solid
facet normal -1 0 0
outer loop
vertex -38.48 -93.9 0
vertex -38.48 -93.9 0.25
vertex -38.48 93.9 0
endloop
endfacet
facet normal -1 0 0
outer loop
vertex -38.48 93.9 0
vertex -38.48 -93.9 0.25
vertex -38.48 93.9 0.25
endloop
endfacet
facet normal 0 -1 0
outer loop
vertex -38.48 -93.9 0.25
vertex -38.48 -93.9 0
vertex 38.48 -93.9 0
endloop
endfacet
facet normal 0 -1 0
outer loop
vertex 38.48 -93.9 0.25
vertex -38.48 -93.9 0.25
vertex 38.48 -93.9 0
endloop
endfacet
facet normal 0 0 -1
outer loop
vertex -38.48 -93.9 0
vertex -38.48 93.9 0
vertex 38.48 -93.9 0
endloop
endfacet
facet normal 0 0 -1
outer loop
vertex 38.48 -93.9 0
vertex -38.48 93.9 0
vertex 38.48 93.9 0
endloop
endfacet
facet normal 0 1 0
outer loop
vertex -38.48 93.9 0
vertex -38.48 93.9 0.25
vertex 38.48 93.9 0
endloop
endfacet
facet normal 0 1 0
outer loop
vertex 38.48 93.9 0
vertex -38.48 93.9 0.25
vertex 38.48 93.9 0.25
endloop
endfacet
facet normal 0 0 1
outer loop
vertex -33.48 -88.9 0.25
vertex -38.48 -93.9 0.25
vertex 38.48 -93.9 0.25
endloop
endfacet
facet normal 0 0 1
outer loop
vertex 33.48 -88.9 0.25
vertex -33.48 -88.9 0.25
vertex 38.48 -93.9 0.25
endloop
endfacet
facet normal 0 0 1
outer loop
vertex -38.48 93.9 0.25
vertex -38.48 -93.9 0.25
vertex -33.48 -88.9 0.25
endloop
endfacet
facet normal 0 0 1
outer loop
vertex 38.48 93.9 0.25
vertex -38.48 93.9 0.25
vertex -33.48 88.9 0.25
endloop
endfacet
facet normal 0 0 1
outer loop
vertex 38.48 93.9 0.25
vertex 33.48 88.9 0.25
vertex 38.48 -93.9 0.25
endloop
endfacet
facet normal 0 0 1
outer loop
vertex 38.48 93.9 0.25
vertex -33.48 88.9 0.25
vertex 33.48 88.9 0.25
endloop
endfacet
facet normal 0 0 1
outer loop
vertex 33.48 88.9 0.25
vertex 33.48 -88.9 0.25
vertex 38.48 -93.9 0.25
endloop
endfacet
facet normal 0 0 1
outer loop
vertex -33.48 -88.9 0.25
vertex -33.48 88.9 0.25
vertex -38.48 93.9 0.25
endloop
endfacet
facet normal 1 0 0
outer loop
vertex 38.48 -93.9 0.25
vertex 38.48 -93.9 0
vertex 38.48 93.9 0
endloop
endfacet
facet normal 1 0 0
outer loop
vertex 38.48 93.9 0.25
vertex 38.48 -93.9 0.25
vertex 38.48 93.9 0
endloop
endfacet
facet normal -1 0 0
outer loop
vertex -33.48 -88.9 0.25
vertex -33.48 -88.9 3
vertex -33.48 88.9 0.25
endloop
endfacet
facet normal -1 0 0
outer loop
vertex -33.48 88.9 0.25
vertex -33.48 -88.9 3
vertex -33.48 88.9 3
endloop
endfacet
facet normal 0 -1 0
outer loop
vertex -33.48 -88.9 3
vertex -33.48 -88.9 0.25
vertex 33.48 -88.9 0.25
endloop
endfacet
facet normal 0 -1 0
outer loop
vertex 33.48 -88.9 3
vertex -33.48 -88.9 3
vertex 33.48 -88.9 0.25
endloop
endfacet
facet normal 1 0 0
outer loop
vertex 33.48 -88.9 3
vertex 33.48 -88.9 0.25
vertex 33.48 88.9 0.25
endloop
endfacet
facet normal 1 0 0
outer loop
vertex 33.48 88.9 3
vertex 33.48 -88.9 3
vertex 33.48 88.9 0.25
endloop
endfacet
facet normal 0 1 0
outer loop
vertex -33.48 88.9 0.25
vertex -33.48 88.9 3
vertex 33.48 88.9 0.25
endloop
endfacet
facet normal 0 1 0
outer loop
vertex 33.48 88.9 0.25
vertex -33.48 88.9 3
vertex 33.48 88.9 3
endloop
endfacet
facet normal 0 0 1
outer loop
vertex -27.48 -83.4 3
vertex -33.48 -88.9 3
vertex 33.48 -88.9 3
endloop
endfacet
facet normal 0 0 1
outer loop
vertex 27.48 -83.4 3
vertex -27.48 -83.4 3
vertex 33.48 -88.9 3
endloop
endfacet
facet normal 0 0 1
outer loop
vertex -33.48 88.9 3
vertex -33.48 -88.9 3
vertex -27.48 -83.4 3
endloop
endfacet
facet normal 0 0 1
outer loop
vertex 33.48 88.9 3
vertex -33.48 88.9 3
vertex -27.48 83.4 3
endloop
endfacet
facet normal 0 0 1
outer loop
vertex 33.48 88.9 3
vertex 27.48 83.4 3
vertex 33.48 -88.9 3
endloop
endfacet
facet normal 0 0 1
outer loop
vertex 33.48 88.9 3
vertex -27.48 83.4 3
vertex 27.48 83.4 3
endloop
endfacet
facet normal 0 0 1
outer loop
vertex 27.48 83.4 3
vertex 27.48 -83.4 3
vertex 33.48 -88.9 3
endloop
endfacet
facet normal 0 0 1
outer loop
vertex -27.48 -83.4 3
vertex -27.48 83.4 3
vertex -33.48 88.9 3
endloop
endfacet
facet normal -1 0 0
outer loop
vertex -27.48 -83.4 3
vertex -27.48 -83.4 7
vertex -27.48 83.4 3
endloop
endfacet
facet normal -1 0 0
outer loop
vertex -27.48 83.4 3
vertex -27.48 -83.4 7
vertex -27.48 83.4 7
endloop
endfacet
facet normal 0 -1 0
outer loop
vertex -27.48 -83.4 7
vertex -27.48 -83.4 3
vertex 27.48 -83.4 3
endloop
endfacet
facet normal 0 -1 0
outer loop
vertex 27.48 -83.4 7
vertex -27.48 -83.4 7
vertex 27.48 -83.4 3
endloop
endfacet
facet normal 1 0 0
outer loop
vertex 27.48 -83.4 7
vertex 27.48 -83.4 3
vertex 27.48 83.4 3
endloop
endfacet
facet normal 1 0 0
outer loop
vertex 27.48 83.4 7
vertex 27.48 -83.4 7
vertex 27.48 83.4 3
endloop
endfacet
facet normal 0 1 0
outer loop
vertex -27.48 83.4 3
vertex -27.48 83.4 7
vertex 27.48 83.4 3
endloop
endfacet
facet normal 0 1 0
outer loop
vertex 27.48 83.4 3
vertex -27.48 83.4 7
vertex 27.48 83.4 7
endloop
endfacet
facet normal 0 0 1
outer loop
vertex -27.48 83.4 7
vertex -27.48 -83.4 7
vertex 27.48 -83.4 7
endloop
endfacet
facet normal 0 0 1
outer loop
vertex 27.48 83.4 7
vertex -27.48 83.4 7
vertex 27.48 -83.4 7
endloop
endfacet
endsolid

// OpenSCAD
// file: constants.scad
hp = 6;
h_floor = 5;

// back wall
r_usb = 2.64;
r_antenna = 3.43;
t_antenna_hex = 5;
t_antenna_washer = 1.75;
t_back = t_antenna_hex + t_antenna_washer;
hex_diam_max = 12;
hex_diam_min = 8.25;

// breadboard
bb_w = 54.96;
bb_d = 83.14;
bb_h = 9.5;
bb_foot_w = 4.64;
bb_foot_d = 2.2;
bb_left_foot_offset = 14.556;
bb_bottom_foot_offset = 22.586;

bb_to_back = 83.66;
bb_bottom_to_wires_top = 32.7;

d_bb_bottom_support = hp;
lid_inset = 4;

h_lid_edge = 3;

back_inset = 5;
h_back_edge = t_back - back_inset;
dz_back_antenna = 12;
dy_back_antenna = 20;

w_base = bb_w + 2*hp;
d_base = hp + bb_d + bb_to_back + back_inset;
h_base = h_floor + bb_bottom_to_wires_top + lid_inset;

h_outer = h_base + h_lid_edge;
w_outer = w_base;
d_outer = d_base;

h_antiwarp = 0.25;
hp_antiwarp = 5;

d_backspace = d_base - hp - bb_d - d_bb_bottom_support;
// main file
include <constants.scad>;

translate([0, 0, h_antiwarp/2])
cube([w_base + 2*hp_antiwarp, d_base + 2*hp_antiwarp, h_antiwarp], center=true);

translate([0, 0, h_lid_edge/2])
cube([w_base, d_base, h_lid_edge], center=true);

translate([0, 0, h_lid_edge + lid_inset/2])
cube([bb_w, bb_d + bb_to_back, lid_inset], center=true);
